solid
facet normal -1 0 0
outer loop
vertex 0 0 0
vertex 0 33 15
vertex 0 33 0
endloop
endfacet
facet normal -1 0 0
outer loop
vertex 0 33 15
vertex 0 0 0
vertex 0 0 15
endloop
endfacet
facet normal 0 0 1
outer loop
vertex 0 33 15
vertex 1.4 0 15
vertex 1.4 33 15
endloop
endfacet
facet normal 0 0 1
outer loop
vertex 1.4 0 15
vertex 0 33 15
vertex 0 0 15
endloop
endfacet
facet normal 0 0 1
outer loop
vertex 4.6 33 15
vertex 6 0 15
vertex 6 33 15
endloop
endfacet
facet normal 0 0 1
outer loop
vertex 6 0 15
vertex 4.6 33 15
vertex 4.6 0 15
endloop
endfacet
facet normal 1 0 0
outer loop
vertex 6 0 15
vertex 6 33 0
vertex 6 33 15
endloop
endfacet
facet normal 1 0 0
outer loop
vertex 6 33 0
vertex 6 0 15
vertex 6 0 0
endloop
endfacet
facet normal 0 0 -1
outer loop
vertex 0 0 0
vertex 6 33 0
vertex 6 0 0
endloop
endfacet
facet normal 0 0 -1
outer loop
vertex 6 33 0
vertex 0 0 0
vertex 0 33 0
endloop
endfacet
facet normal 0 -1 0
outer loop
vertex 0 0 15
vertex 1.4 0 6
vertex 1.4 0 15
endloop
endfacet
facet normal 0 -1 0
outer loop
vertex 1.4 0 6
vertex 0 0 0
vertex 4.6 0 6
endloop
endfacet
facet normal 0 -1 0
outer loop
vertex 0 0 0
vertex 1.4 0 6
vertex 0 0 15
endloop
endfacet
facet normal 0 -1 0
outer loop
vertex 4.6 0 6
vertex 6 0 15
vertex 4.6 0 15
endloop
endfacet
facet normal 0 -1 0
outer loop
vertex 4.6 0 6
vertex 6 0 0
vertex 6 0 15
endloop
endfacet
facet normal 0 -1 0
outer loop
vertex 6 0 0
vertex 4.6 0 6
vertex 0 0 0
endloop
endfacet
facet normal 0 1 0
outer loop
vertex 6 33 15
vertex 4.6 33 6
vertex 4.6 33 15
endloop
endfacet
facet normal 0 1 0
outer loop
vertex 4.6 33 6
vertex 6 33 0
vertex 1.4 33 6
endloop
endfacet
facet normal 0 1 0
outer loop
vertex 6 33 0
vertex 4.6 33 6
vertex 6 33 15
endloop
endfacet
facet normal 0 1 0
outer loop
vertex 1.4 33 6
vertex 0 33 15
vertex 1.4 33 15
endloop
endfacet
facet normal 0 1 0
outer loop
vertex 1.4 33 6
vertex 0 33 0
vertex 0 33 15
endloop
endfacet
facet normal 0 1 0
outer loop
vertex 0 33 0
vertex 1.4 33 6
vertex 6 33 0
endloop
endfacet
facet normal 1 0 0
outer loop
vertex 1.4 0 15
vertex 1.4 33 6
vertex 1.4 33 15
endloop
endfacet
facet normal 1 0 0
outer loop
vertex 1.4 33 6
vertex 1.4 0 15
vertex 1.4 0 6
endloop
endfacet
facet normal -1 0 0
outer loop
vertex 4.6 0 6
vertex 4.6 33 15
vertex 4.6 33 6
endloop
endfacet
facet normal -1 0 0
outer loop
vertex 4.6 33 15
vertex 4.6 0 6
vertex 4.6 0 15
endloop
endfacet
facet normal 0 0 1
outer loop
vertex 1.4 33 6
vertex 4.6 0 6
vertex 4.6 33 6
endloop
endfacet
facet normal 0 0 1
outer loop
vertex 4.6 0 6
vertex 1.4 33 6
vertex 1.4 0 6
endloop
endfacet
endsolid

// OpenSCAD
01_Main_Dim = 33;
02_Width = 6;
03_Height = 15;
04_Slot_Width = 3;
05_Slot_Depth = 9;
06_Clearance = 0.1;
BigNum = 9999;
SmallNum = .01;
Slot_x = (02_Width-04_Slot_Width-06_Clearance*2)/2;

Text_Height = 10;
Text_Thick = 15;

difference()
	{
	
    // Main body
        cube([ 02_Width, 01_Main_Dim, 03_Height]);
	
        translate([Slot_x, -SmallNum, 03_Height-05_Slot_Depth])
		cube([04_Slot_Width+06_Clearance*2, BigNum, BigNum]);
        
	
	}
